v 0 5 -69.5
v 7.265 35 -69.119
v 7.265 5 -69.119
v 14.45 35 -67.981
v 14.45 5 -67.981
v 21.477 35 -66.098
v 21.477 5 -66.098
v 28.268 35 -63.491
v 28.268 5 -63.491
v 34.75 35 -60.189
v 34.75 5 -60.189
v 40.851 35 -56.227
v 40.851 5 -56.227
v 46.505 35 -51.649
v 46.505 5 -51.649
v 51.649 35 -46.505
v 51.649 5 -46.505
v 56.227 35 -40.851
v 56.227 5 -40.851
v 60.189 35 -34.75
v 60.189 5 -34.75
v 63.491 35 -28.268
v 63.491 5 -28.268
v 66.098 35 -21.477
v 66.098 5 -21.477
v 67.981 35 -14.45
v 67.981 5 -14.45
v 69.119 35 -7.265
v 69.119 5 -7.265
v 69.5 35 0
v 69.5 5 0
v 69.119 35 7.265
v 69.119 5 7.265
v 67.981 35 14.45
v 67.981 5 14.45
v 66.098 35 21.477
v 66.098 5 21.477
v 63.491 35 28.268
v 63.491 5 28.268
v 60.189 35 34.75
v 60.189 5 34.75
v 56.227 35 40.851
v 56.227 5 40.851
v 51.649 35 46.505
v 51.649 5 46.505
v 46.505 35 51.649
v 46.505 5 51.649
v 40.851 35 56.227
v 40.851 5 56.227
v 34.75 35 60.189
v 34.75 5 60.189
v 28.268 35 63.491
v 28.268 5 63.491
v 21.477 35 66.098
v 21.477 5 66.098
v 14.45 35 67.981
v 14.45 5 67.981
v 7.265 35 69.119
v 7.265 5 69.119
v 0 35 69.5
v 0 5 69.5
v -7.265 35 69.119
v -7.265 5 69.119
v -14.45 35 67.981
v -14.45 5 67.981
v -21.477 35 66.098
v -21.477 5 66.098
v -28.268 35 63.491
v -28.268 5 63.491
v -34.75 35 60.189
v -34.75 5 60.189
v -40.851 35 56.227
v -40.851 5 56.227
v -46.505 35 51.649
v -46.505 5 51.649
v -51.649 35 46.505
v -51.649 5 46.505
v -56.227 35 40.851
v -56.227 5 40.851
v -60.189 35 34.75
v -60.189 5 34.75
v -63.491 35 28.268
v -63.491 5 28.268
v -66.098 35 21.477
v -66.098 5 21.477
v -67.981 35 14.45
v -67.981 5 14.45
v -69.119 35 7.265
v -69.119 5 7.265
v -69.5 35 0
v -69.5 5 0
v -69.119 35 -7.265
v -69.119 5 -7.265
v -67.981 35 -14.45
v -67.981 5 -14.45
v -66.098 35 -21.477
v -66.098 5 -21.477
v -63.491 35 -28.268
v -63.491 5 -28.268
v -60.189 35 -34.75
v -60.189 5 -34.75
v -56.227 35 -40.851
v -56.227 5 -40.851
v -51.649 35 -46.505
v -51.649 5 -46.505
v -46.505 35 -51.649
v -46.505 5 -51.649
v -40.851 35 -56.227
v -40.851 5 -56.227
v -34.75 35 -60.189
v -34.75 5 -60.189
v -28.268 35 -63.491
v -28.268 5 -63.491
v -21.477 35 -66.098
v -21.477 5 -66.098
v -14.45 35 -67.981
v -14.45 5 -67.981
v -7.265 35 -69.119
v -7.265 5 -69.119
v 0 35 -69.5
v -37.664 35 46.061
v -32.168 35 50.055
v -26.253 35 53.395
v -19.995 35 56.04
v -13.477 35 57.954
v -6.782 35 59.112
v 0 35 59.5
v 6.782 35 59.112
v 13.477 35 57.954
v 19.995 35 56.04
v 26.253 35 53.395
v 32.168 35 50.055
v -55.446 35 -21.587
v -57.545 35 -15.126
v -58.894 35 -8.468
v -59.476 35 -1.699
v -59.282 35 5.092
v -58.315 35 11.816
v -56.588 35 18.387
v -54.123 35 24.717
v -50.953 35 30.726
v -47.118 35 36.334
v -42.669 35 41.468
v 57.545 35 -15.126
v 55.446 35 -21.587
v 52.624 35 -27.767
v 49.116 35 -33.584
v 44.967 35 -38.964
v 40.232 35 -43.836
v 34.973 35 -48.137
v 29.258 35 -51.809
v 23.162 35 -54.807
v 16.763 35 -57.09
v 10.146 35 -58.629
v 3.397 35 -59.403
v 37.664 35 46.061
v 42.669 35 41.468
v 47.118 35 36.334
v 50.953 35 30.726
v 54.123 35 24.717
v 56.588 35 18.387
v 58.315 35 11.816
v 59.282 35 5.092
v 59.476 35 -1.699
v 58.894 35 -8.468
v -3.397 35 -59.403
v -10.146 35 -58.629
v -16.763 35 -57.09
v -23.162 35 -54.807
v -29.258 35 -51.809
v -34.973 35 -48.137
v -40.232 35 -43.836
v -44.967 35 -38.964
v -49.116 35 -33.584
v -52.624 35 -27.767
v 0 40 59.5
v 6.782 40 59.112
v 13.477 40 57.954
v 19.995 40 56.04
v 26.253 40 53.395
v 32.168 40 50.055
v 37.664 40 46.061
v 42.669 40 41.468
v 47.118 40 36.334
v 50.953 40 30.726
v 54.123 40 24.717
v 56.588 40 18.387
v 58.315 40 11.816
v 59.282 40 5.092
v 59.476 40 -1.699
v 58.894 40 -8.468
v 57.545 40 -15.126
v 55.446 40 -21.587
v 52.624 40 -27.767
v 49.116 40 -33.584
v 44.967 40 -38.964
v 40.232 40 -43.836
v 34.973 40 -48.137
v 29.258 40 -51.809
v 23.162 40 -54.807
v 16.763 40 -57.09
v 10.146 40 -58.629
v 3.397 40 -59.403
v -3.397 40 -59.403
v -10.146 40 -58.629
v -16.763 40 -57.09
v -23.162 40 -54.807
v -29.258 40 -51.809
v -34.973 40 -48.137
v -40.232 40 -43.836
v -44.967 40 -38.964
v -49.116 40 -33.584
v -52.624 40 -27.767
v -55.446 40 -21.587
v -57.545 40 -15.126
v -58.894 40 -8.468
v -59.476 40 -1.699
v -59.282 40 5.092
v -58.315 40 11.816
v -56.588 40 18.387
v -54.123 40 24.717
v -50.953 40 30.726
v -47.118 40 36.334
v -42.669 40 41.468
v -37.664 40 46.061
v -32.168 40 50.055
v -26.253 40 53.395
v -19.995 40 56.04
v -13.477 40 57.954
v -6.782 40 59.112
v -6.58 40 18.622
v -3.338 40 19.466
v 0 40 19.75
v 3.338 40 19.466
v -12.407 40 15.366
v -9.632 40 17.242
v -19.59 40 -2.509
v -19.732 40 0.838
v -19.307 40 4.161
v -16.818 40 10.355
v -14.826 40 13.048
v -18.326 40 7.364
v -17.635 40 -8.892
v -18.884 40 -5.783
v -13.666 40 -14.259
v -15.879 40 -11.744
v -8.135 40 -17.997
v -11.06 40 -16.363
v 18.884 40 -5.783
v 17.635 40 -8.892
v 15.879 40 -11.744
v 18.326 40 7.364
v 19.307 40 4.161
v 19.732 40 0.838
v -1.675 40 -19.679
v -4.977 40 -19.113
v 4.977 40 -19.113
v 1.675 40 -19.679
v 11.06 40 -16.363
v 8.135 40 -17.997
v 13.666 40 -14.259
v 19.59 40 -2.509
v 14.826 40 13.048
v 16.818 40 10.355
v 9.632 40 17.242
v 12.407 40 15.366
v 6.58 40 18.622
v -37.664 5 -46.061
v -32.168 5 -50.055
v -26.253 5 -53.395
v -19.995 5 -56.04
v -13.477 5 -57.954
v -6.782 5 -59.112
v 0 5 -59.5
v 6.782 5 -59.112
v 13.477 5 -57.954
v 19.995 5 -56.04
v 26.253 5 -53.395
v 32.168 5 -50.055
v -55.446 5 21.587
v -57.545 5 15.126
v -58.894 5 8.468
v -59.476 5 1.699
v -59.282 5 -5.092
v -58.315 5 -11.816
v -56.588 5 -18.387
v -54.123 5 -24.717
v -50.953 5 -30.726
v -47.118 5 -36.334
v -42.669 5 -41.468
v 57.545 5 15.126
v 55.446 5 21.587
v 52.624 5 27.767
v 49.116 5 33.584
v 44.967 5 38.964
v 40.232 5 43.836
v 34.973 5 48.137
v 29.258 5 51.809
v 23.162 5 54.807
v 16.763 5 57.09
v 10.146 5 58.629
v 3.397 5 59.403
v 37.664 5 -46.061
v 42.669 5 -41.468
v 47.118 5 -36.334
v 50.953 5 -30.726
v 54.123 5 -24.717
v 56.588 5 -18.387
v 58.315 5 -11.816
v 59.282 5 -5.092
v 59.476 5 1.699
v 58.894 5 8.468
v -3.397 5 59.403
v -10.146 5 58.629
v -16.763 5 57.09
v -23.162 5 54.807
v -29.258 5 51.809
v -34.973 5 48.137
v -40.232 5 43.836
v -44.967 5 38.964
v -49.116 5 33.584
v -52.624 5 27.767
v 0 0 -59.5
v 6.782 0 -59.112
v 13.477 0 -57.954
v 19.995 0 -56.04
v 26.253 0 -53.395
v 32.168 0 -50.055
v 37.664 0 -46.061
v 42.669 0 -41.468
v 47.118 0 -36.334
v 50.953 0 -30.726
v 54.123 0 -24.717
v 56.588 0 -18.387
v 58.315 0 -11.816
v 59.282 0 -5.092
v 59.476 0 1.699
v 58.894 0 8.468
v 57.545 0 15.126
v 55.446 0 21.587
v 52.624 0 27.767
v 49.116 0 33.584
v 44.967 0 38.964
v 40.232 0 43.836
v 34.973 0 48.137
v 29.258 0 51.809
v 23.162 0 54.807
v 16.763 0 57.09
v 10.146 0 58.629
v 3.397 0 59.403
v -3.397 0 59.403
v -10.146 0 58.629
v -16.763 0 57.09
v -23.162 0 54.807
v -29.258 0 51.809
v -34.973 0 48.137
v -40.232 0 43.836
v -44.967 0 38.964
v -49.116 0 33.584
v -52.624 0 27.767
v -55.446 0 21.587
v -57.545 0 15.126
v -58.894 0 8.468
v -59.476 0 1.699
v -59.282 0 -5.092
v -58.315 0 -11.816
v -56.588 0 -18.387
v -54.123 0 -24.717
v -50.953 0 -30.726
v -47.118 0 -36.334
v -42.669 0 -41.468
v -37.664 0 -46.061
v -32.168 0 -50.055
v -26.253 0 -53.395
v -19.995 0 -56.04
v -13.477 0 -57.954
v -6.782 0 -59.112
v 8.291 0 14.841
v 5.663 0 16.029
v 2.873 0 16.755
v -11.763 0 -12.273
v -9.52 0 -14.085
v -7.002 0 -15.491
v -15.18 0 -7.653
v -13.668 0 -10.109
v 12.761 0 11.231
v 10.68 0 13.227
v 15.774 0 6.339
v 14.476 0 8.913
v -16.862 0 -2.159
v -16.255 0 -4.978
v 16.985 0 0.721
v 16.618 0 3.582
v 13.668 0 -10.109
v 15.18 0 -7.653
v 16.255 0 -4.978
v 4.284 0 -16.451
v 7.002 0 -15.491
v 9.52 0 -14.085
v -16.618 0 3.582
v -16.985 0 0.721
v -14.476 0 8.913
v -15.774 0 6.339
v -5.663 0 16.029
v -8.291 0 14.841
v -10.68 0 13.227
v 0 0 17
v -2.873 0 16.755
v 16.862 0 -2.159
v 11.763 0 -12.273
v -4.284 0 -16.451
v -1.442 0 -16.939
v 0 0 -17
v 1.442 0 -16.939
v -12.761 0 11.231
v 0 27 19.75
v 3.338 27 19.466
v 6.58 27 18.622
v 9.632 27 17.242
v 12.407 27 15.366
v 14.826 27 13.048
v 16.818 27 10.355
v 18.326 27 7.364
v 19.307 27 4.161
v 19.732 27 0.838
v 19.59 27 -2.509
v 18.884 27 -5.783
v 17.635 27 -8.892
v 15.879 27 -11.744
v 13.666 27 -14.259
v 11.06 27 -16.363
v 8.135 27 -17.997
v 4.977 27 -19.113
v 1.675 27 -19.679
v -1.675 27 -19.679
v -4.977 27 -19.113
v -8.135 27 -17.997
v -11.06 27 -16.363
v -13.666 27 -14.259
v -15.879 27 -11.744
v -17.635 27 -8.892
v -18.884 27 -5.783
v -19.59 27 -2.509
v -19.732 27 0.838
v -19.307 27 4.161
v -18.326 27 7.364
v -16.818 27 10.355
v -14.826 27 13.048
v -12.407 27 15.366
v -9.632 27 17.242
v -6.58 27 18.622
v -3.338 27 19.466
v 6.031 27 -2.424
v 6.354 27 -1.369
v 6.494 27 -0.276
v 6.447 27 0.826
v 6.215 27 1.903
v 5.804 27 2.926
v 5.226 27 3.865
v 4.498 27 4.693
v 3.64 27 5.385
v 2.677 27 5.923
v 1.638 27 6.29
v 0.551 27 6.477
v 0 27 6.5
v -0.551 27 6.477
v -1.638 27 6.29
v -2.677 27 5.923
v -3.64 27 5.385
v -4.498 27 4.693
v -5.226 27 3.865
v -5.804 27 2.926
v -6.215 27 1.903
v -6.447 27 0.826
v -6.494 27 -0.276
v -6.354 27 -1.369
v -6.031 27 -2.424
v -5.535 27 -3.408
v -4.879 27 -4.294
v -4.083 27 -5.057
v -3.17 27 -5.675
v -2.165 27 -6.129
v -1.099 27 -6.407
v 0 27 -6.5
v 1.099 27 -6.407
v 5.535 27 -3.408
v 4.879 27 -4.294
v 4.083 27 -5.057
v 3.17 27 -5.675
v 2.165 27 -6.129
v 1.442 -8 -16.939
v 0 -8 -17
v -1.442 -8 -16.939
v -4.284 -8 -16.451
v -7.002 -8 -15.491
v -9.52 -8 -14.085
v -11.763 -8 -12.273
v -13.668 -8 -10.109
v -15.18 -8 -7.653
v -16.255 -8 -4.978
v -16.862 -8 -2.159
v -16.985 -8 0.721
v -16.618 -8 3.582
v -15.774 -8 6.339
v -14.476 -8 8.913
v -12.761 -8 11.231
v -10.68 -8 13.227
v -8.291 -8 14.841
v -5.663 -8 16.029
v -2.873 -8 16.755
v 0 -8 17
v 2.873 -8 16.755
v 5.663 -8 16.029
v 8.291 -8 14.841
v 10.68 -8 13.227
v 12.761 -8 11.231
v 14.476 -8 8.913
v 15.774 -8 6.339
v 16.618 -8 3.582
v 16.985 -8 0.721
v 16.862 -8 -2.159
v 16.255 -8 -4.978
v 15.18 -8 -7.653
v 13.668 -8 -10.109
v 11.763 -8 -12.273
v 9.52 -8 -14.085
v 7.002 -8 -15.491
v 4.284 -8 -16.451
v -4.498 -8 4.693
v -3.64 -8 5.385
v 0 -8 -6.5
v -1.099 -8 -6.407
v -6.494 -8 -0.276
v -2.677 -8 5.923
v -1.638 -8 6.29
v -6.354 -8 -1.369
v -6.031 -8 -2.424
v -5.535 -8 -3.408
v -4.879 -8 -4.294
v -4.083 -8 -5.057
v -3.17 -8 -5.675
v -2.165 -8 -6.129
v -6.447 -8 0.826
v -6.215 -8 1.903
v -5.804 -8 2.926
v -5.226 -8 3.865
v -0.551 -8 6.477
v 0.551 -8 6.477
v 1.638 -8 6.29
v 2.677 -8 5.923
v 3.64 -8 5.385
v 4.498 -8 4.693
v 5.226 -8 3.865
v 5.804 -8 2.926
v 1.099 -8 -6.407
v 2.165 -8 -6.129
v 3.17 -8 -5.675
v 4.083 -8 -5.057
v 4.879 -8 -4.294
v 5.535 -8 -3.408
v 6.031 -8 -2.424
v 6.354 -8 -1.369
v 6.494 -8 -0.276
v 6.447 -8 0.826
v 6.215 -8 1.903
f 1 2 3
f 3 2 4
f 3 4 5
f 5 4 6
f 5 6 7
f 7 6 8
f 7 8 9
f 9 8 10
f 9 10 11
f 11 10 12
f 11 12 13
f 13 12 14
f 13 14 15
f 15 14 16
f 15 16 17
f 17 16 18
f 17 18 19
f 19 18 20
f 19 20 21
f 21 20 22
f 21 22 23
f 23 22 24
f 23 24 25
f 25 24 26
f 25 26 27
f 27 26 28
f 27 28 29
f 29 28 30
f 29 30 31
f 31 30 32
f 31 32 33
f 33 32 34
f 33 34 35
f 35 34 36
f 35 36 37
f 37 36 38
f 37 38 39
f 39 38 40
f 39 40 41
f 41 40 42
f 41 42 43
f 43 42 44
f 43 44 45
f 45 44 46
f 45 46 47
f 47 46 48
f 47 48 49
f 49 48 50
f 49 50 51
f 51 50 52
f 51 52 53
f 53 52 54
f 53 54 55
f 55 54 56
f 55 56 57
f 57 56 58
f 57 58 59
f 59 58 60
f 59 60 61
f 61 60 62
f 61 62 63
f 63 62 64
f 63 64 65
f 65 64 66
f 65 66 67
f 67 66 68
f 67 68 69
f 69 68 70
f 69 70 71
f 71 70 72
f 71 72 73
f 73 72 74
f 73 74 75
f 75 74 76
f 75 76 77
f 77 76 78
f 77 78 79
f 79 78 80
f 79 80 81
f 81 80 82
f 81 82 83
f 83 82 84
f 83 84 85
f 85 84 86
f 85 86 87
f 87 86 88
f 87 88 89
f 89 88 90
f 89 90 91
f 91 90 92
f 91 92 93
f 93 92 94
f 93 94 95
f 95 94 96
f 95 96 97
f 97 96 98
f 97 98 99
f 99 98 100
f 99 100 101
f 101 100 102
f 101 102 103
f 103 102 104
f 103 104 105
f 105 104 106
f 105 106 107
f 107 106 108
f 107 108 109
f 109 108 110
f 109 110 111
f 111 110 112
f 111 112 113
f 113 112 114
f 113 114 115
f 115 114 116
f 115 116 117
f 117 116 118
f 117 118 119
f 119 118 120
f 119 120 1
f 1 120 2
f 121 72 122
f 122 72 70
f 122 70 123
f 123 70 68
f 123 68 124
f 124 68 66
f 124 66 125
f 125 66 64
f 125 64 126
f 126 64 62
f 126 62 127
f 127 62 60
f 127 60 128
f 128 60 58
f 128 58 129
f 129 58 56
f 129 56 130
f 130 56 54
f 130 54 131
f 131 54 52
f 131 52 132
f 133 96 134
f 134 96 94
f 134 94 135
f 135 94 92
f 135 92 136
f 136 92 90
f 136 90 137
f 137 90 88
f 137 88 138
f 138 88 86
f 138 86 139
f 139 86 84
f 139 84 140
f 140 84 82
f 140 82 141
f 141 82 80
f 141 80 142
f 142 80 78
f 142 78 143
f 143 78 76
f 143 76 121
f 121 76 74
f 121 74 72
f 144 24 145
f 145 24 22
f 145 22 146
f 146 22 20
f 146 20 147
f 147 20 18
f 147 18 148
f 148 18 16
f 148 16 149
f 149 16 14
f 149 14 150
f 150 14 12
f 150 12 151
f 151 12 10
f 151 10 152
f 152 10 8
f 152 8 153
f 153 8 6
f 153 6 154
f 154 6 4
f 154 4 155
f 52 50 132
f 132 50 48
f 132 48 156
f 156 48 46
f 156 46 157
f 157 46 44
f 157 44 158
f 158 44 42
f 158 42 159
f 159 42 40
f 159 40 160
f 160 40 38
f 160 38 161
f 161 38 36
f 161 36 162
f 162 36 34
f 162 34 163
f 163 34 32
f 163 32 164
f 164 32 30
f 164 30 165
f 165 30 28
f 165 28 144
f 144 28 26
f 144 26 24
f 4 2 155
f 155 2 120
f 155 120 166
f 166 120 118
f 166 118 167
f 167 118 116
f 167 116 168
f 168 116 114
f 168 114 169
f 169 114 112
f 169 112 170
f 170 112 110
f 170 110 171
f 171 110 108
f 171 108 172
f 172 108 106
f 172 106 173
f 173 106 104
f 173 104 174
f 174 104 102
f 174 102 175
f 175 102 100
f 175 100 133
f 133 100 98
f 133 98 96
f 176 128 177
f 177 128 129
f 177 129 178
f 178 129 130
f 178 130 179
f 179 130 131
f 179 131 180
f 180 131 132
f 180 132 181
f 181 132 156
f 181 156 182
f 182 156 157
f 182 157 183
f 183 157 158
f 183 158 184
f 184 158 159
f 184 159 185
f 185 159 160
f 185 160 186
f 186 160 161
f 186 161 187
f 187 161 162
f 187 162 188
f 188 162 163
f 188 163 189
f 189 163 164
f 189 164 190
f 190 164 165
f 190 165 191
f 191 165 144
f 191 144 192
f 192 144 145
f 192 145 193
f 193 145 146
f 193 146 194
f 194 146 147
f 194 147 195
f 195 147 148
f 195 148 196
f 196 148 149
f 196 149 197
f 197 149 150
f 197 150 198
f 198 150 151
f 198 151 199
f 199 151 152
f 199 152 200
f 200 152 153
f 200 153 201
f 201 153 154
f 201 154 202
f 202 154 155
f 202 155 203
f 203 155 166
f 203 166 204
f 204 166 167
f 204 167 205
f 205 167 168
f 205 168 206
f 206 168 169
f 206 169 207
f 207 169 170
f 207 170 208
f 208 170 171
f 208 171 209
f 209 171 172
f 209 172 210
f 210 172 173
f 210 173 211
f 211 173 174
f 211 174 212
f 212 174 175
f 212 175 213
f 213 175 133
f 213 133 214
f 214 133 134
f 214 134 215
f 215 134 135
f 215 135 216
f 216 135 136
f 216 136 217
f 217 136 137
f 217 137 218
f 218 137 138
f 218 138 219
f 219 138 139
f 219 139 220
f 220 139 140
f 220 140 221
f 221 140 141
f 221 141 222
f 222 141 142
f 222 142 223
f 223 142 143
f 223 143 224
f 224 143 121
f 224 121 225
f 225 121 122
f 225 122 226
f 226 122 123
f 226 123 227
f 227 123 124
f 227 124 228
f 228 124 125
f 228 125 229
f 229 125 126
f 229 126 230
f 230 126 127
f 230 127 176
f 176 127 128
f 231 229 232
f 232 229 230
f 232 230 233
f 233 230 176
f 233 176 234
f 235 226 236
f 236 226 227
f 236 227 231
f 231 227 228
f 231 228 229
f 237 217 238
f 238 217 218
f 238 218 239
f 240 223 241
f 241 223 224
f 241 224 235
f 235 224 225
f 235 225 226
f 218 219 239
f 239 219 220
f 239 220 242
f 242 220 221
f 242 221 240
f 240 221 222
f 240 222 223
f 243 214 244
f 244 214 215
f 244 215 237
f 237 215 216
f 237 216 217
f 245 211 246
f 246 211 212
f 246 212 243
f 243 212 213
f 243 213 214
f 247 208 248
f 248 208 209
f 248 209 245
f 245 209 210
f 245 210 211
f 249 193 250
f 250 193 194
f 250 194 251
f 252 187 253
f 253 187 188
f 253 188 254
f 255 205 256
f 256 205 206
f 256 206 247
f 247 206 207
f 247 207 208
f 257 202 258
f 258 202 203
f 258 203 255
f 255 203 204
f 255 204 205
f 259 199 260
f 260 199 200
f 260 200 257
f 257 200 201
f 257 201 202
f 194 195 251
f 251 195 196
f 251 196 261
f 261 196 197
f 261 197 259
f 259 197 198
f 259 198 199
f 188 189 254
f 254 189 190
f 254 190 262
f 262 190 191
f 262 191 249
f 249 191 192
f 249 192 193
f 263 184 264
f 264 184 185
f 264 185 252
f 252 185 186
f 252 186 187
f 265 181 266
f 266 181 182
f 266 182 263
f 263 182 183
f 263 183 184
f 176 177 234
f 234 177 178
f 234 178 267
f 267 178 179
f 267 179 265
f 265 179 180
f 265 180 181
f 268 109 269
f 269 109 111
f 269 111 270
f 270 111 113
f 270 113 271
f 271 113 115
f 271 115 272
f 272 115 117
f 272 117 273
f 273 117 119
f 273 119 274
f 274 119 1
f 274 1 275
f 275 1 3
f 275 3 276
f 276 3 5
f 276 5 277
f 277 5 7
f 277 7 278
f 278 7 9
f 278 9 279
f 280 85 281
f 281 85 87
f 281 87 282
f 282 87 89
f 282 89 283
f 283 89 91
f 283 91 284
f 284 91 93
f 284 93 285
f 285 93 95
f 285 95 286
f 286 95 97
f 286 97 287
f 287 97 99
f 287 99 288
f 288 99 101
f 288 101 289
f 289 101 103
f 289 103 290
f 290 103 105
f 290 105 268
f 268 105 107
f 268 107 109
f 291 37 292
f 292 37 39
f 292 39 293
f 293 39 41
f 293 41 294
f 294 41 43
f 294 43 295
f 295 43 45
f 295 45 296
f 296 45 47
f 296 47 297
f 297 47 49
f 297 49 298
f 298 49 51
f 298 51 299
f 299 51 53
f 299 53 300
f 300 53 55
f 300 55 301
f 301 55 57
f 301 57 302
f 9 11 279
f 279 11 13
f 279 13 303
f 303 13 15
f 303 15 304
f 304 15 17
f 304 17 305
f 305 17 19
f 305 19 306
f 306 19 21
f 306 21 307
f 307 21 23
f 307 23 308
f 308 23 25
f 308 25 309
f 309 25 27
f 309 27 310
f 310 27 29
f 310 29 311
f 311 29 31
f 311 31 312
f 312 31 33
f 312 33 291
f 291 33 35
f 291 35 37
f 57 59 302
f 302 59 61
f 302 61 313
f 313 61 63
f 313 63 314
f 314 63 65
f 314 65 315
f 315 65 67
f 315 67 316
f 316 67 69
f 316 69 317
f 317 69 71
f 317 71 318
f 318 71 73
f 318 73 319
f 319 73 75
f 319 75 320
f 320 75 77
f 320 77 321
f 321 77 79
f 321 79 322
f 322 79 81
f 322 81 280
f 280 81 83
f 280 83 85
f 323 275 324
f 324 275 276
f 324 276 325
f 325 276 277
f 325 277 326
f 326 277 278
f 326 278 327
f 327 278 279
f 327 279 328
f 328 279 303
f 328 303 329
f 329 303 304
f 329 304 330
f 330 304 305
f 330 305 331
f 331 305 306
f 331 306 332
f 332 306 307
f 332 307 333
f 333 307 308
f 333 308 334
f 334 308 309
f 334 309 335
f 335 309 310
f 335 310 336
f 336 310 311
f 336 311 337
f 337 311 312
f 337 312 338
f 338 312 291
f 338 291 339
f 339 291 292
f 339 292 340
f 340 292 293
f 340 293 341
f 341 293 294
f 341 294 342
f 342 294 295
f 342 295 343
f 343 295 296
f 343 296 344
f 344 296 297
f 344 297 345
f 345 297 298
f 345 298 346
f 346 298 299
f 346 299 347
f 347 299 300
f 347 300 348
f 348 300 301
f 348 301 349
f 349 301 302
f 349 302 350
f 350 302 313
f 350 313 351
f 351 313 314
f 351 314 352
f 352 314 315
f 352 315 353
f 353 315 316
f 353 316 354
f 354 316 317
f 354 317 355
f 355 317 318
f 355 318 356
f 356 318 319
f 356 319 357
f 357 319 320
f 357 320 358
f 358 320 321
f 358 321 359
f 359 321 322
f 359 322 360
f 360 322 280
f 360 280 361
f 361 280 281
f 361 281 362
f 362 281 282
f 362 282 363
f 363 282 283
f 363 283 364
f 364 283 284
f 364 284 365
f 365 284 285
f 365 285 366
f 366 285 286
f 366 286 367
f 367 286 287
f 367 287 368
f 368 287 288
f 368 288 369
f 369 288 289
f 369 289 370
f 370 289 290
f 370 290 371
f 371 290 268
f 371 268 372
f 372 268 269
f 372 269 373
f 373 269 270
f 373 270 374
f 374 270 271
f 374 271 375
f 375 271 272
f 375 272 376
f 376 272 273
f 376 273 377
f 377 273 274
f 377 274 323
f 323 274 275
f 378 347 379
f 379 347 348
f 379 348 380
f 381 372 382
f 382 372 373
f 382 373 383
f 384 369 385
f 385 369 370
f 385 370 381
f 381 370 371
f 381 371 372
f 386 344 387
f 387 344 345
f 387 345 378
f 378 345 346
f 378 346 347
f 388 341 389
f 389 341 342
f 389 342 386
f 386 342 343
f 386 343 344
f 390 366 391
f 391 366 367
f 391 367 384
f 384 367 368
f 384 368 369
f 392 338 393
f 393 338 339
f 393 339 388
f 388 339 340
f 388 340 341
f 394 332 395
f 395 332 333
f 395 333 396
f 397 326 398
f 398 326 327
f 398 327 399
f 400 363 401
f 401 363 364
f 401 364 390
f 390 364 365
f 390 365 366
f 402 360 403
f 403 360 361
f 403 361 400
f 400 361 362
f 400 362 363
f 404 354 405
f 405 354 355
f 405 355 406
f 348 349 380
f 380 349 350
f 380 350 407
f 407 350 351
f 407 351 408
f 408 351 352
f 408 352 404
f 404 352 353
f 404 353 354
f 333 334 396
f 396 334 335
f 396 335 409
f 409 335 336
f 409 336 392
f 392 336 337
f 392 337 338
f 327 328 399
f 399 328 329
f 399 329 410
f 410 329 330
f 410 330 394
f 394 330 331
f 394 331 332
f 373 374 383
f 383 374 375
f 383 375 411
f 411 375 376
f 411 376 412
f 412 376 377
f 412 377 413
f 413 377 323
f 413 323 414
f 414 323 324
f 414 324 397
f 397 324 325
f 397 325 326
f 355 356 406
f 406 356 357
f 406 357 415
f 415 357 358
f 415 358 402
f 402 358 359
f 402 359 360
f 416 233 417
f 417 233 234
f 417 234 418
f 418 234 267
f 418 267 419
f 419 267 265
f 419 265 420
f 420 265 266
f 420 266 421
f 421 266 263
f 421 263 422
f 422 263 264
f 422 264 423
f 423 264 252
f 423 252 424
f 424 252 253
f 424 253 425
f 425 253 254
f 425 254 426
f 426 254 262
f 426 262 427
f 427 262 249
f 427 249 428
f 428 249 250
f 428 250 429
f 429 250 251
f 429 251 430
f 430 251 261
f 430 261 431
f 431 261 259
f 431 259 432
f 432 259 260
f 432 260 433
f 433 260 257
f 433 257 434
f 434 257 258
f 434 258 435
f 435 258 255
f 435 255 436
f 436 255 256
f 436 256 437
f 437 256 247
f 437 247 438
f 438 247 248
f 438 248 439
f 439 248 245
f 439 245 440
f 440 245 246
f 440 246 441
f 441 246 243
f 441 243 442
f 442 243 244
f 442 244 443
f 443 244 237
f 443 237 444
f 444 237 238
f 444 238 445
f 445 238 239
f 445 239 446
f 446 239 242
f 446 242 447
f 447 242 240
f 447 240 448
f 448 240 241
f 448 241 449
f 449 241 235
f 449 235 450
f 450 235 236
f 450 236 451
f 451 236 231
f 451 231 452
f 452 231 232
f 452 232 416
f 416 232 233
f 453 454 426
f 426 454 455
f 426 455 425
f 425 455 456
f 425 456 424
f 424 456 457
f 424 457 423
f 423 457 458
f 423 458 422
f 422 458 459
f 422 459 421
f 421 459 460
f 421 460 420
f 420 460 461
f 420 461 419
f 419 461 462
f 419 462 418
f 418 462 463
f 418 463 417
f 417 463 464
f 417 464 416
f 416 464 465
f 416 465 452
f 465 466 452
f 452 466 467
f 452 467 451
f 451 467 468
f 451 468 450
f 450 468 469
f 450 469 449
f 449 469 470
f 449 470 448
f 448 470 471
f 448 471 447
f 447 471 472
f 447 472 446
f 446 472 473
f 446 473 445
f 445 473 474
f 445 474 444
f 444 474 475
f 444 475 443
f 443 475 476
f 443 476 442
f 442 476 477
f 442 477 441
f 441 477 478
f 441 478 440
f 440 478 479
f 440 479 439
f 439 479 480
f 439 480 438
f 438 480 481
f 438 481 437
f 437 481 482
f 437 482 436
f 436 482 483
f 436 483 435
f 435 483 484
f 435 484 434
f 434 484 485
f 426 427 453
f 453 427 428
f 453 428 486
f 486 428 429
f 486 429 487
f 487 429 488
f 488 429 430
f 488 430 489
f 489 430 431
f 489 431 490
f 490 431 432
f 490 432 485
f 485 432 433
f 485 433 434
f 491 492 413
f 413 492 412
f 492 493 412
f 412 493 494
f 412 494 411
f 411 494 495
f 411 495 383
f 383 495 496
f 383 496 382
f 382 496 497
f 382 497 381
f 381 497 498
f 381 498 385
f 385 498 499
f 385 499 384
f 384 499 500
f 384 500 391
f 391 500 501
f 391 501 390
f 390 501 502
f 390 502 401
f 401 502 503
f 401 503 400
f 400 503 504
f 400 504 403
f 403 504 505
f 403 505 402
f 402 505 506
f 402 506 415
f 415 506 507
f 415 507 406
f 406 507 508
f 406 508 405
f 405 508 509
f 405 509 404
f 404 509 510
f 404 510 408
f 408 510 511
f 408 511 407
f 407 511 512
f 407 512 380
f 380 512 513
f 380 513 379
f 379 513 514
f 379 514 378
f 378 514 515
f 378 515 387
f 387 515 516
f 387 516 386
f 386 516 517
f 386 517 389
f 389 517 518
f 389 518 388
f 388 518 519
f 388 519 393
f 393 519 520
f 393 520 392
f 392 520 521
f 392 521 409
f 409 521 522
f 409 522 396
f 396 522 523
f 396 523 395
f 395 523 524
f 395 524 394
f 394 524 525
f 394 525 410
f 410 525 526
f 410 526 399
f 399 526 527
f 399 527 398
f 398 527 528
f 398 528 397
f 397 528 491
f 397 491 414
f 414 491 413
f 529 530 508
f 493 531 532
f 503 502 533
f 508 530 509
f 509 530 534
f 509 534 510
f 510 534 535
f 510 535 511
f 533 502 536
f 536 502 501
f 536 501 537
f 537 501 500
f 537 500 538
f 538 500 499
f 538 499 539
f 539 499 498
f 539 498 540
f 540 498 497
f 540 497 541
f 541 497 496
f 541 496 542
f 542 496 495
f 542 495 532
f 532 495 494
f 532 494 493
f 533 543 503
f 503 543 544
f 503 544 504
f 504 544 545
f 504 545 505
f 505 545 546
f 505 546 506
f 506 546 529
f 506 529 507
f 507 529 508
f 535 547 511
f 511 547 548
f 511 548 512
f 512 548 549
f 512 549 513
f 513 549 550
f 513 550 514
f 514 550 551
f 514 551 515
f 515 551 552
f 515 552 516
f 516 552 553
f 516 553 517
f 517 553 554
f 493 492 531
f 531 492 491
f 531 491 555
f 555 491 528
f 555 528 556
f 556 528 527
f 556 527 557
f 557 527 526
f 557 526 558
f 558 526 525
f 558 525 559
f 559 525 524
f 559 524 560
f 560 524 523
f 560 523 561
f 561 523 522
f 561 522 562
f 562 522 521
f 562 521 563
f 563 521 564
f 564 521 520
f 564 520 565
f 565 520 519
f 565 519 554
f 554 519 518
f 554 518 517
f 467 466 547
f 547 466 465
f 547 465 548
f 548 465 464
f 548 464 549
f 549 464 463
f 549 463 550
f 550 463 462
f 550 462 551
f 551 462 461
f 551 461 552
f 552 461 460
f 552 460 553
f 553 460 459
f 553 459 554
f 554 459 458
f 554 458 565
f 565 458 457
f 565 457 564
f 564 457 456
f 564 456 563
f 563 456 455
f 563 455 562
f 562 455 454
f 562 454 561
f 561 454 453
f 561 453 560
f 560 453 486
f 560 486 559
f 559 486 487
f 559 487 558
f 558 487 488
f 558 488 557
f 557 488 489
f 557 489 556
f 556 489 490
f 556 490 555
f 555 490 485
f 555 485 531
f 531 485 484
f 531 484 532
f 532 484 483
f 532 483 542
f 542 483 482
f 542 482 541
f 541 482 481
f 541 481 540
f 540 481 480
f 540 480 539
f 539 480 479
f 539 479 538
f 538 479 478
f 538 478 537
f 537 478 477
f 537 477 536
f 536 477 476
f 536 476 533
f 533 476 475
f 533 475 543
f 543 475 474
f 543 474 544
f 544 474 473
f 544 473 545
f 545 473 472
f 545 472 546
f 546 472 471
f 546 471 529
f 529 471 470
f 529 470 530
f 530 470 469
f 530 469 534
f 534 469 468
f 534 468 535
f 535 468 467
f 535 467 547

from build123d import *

# Parameters (mm, degrees)
SKETCH1_R           = 69.5
BOSS_EXTRUDE1_DEPTH = 40
CUT_EXTRUDE1_START  = -5
SKETCH2_R           = 69.5
SKETCH2_R_2         = 59.5
CUT_EXTRUDE1_DEPTH  = 5
SKETCH3_R           = 69.5
SKETCH3_R_2         = 59.5
CUT_EXTRUDE2_DEPTH  = 5
SKETCH4_R           = 19.75
CUT_EXTRUDE4_DEPTH  = 13
SKETCH5_R           = 17
BOSS_EXTRUDE2_DEPTH = 8
SKETCH6_R           = 6.5
CUT_EXTRUDE5_DEPTH  = 110.382356895


with BuildPart() as part:
    # Sketch1 → Boss-Extrude1 (new body)
    with BuildSketch(Plane(origin=(0, 0, 0), x_dir=(1, 0, 0), z_dir=(0, 1, 0))):
        with Locations(Location((0, 0, 0), (0, 0, 270))):
            Circle(SKETCH1_R)
    extrude(amount=BOSS_EXTRUDE1_DEPTH)

    # Sketch2 → Cut-Extrude1 (cut)
    with BuildSketch(Plane(origin=(0, 40, 0), x_dir=(1, 0, 0), z_dir=(0, 1, 0)).offset(CUT_EXTRUDE1_START)):
        with Locations(Location((0, 0, 0), (0, 0, 270))):
            Circle(SKETCH2_R)
        with Locations(Location((0, 0, 0), (0, 0, 270))):
            Circle(SKETCH2_R_2, mode=Mode.SUBTRACT)
    extrude(amount=CUT_EXTRUDE1_DEPTH, mode=Mode.SUBTRACT)

    # Sketch3 → Cut-Extrude2 (cut)
    with BuildSketch(Plane.XZ):
        with Locations(Location((0, 0, 0), (0, 0, 270))):
            Circle(SKETCH3_R)
        with Locations(Location((0, 0, 0), (0, 0, 90))):
            Circle(SKETCH3_R_2, mode=Mode.SUBTRACT)
    extrude(amount=-CUT_EXTRUDE2_DEPTH, mode=Mode.SUBTRACT)

    # Sketch4 → Cut-Extrude4 (cut)
    with BuildSketch(Plane(origin=(0, 40, 0), x_dir=(1, 0, 0), z_dir=(0, 1, 0))):
        with Locations(Location((0, 0, 0), (0, 0, 270))):
            Circle(SKETCH4_R)
    extrude(amount=-CUT_EXTRUDE4_DEPTH, mode=Mode.SUBTRACT)

    # Sketch5 → Boss-Extrude2 (add)
    with BuildSketch(Plane.XZ):
        with Locations(Location((0, 0, 0), (0, 0, 270))):
            Circle(SKETCH5_R)
    extrude(amount=BOSS_EXTRUDE2_DEPTH)

    # Sketch6 → Cut-Extrude5 (cut, through all)
    with BuildSketch(Plane.XZ.offset(8)):
        with Locations(Location((0, 0, 0), (0, 0, 270))):
            Circle(SKETCH6_R)
    extrude(amount=-CUT_EXTRUDE5_DEPTH, mode=Mode.SUBTRACT)


solid = part.part
